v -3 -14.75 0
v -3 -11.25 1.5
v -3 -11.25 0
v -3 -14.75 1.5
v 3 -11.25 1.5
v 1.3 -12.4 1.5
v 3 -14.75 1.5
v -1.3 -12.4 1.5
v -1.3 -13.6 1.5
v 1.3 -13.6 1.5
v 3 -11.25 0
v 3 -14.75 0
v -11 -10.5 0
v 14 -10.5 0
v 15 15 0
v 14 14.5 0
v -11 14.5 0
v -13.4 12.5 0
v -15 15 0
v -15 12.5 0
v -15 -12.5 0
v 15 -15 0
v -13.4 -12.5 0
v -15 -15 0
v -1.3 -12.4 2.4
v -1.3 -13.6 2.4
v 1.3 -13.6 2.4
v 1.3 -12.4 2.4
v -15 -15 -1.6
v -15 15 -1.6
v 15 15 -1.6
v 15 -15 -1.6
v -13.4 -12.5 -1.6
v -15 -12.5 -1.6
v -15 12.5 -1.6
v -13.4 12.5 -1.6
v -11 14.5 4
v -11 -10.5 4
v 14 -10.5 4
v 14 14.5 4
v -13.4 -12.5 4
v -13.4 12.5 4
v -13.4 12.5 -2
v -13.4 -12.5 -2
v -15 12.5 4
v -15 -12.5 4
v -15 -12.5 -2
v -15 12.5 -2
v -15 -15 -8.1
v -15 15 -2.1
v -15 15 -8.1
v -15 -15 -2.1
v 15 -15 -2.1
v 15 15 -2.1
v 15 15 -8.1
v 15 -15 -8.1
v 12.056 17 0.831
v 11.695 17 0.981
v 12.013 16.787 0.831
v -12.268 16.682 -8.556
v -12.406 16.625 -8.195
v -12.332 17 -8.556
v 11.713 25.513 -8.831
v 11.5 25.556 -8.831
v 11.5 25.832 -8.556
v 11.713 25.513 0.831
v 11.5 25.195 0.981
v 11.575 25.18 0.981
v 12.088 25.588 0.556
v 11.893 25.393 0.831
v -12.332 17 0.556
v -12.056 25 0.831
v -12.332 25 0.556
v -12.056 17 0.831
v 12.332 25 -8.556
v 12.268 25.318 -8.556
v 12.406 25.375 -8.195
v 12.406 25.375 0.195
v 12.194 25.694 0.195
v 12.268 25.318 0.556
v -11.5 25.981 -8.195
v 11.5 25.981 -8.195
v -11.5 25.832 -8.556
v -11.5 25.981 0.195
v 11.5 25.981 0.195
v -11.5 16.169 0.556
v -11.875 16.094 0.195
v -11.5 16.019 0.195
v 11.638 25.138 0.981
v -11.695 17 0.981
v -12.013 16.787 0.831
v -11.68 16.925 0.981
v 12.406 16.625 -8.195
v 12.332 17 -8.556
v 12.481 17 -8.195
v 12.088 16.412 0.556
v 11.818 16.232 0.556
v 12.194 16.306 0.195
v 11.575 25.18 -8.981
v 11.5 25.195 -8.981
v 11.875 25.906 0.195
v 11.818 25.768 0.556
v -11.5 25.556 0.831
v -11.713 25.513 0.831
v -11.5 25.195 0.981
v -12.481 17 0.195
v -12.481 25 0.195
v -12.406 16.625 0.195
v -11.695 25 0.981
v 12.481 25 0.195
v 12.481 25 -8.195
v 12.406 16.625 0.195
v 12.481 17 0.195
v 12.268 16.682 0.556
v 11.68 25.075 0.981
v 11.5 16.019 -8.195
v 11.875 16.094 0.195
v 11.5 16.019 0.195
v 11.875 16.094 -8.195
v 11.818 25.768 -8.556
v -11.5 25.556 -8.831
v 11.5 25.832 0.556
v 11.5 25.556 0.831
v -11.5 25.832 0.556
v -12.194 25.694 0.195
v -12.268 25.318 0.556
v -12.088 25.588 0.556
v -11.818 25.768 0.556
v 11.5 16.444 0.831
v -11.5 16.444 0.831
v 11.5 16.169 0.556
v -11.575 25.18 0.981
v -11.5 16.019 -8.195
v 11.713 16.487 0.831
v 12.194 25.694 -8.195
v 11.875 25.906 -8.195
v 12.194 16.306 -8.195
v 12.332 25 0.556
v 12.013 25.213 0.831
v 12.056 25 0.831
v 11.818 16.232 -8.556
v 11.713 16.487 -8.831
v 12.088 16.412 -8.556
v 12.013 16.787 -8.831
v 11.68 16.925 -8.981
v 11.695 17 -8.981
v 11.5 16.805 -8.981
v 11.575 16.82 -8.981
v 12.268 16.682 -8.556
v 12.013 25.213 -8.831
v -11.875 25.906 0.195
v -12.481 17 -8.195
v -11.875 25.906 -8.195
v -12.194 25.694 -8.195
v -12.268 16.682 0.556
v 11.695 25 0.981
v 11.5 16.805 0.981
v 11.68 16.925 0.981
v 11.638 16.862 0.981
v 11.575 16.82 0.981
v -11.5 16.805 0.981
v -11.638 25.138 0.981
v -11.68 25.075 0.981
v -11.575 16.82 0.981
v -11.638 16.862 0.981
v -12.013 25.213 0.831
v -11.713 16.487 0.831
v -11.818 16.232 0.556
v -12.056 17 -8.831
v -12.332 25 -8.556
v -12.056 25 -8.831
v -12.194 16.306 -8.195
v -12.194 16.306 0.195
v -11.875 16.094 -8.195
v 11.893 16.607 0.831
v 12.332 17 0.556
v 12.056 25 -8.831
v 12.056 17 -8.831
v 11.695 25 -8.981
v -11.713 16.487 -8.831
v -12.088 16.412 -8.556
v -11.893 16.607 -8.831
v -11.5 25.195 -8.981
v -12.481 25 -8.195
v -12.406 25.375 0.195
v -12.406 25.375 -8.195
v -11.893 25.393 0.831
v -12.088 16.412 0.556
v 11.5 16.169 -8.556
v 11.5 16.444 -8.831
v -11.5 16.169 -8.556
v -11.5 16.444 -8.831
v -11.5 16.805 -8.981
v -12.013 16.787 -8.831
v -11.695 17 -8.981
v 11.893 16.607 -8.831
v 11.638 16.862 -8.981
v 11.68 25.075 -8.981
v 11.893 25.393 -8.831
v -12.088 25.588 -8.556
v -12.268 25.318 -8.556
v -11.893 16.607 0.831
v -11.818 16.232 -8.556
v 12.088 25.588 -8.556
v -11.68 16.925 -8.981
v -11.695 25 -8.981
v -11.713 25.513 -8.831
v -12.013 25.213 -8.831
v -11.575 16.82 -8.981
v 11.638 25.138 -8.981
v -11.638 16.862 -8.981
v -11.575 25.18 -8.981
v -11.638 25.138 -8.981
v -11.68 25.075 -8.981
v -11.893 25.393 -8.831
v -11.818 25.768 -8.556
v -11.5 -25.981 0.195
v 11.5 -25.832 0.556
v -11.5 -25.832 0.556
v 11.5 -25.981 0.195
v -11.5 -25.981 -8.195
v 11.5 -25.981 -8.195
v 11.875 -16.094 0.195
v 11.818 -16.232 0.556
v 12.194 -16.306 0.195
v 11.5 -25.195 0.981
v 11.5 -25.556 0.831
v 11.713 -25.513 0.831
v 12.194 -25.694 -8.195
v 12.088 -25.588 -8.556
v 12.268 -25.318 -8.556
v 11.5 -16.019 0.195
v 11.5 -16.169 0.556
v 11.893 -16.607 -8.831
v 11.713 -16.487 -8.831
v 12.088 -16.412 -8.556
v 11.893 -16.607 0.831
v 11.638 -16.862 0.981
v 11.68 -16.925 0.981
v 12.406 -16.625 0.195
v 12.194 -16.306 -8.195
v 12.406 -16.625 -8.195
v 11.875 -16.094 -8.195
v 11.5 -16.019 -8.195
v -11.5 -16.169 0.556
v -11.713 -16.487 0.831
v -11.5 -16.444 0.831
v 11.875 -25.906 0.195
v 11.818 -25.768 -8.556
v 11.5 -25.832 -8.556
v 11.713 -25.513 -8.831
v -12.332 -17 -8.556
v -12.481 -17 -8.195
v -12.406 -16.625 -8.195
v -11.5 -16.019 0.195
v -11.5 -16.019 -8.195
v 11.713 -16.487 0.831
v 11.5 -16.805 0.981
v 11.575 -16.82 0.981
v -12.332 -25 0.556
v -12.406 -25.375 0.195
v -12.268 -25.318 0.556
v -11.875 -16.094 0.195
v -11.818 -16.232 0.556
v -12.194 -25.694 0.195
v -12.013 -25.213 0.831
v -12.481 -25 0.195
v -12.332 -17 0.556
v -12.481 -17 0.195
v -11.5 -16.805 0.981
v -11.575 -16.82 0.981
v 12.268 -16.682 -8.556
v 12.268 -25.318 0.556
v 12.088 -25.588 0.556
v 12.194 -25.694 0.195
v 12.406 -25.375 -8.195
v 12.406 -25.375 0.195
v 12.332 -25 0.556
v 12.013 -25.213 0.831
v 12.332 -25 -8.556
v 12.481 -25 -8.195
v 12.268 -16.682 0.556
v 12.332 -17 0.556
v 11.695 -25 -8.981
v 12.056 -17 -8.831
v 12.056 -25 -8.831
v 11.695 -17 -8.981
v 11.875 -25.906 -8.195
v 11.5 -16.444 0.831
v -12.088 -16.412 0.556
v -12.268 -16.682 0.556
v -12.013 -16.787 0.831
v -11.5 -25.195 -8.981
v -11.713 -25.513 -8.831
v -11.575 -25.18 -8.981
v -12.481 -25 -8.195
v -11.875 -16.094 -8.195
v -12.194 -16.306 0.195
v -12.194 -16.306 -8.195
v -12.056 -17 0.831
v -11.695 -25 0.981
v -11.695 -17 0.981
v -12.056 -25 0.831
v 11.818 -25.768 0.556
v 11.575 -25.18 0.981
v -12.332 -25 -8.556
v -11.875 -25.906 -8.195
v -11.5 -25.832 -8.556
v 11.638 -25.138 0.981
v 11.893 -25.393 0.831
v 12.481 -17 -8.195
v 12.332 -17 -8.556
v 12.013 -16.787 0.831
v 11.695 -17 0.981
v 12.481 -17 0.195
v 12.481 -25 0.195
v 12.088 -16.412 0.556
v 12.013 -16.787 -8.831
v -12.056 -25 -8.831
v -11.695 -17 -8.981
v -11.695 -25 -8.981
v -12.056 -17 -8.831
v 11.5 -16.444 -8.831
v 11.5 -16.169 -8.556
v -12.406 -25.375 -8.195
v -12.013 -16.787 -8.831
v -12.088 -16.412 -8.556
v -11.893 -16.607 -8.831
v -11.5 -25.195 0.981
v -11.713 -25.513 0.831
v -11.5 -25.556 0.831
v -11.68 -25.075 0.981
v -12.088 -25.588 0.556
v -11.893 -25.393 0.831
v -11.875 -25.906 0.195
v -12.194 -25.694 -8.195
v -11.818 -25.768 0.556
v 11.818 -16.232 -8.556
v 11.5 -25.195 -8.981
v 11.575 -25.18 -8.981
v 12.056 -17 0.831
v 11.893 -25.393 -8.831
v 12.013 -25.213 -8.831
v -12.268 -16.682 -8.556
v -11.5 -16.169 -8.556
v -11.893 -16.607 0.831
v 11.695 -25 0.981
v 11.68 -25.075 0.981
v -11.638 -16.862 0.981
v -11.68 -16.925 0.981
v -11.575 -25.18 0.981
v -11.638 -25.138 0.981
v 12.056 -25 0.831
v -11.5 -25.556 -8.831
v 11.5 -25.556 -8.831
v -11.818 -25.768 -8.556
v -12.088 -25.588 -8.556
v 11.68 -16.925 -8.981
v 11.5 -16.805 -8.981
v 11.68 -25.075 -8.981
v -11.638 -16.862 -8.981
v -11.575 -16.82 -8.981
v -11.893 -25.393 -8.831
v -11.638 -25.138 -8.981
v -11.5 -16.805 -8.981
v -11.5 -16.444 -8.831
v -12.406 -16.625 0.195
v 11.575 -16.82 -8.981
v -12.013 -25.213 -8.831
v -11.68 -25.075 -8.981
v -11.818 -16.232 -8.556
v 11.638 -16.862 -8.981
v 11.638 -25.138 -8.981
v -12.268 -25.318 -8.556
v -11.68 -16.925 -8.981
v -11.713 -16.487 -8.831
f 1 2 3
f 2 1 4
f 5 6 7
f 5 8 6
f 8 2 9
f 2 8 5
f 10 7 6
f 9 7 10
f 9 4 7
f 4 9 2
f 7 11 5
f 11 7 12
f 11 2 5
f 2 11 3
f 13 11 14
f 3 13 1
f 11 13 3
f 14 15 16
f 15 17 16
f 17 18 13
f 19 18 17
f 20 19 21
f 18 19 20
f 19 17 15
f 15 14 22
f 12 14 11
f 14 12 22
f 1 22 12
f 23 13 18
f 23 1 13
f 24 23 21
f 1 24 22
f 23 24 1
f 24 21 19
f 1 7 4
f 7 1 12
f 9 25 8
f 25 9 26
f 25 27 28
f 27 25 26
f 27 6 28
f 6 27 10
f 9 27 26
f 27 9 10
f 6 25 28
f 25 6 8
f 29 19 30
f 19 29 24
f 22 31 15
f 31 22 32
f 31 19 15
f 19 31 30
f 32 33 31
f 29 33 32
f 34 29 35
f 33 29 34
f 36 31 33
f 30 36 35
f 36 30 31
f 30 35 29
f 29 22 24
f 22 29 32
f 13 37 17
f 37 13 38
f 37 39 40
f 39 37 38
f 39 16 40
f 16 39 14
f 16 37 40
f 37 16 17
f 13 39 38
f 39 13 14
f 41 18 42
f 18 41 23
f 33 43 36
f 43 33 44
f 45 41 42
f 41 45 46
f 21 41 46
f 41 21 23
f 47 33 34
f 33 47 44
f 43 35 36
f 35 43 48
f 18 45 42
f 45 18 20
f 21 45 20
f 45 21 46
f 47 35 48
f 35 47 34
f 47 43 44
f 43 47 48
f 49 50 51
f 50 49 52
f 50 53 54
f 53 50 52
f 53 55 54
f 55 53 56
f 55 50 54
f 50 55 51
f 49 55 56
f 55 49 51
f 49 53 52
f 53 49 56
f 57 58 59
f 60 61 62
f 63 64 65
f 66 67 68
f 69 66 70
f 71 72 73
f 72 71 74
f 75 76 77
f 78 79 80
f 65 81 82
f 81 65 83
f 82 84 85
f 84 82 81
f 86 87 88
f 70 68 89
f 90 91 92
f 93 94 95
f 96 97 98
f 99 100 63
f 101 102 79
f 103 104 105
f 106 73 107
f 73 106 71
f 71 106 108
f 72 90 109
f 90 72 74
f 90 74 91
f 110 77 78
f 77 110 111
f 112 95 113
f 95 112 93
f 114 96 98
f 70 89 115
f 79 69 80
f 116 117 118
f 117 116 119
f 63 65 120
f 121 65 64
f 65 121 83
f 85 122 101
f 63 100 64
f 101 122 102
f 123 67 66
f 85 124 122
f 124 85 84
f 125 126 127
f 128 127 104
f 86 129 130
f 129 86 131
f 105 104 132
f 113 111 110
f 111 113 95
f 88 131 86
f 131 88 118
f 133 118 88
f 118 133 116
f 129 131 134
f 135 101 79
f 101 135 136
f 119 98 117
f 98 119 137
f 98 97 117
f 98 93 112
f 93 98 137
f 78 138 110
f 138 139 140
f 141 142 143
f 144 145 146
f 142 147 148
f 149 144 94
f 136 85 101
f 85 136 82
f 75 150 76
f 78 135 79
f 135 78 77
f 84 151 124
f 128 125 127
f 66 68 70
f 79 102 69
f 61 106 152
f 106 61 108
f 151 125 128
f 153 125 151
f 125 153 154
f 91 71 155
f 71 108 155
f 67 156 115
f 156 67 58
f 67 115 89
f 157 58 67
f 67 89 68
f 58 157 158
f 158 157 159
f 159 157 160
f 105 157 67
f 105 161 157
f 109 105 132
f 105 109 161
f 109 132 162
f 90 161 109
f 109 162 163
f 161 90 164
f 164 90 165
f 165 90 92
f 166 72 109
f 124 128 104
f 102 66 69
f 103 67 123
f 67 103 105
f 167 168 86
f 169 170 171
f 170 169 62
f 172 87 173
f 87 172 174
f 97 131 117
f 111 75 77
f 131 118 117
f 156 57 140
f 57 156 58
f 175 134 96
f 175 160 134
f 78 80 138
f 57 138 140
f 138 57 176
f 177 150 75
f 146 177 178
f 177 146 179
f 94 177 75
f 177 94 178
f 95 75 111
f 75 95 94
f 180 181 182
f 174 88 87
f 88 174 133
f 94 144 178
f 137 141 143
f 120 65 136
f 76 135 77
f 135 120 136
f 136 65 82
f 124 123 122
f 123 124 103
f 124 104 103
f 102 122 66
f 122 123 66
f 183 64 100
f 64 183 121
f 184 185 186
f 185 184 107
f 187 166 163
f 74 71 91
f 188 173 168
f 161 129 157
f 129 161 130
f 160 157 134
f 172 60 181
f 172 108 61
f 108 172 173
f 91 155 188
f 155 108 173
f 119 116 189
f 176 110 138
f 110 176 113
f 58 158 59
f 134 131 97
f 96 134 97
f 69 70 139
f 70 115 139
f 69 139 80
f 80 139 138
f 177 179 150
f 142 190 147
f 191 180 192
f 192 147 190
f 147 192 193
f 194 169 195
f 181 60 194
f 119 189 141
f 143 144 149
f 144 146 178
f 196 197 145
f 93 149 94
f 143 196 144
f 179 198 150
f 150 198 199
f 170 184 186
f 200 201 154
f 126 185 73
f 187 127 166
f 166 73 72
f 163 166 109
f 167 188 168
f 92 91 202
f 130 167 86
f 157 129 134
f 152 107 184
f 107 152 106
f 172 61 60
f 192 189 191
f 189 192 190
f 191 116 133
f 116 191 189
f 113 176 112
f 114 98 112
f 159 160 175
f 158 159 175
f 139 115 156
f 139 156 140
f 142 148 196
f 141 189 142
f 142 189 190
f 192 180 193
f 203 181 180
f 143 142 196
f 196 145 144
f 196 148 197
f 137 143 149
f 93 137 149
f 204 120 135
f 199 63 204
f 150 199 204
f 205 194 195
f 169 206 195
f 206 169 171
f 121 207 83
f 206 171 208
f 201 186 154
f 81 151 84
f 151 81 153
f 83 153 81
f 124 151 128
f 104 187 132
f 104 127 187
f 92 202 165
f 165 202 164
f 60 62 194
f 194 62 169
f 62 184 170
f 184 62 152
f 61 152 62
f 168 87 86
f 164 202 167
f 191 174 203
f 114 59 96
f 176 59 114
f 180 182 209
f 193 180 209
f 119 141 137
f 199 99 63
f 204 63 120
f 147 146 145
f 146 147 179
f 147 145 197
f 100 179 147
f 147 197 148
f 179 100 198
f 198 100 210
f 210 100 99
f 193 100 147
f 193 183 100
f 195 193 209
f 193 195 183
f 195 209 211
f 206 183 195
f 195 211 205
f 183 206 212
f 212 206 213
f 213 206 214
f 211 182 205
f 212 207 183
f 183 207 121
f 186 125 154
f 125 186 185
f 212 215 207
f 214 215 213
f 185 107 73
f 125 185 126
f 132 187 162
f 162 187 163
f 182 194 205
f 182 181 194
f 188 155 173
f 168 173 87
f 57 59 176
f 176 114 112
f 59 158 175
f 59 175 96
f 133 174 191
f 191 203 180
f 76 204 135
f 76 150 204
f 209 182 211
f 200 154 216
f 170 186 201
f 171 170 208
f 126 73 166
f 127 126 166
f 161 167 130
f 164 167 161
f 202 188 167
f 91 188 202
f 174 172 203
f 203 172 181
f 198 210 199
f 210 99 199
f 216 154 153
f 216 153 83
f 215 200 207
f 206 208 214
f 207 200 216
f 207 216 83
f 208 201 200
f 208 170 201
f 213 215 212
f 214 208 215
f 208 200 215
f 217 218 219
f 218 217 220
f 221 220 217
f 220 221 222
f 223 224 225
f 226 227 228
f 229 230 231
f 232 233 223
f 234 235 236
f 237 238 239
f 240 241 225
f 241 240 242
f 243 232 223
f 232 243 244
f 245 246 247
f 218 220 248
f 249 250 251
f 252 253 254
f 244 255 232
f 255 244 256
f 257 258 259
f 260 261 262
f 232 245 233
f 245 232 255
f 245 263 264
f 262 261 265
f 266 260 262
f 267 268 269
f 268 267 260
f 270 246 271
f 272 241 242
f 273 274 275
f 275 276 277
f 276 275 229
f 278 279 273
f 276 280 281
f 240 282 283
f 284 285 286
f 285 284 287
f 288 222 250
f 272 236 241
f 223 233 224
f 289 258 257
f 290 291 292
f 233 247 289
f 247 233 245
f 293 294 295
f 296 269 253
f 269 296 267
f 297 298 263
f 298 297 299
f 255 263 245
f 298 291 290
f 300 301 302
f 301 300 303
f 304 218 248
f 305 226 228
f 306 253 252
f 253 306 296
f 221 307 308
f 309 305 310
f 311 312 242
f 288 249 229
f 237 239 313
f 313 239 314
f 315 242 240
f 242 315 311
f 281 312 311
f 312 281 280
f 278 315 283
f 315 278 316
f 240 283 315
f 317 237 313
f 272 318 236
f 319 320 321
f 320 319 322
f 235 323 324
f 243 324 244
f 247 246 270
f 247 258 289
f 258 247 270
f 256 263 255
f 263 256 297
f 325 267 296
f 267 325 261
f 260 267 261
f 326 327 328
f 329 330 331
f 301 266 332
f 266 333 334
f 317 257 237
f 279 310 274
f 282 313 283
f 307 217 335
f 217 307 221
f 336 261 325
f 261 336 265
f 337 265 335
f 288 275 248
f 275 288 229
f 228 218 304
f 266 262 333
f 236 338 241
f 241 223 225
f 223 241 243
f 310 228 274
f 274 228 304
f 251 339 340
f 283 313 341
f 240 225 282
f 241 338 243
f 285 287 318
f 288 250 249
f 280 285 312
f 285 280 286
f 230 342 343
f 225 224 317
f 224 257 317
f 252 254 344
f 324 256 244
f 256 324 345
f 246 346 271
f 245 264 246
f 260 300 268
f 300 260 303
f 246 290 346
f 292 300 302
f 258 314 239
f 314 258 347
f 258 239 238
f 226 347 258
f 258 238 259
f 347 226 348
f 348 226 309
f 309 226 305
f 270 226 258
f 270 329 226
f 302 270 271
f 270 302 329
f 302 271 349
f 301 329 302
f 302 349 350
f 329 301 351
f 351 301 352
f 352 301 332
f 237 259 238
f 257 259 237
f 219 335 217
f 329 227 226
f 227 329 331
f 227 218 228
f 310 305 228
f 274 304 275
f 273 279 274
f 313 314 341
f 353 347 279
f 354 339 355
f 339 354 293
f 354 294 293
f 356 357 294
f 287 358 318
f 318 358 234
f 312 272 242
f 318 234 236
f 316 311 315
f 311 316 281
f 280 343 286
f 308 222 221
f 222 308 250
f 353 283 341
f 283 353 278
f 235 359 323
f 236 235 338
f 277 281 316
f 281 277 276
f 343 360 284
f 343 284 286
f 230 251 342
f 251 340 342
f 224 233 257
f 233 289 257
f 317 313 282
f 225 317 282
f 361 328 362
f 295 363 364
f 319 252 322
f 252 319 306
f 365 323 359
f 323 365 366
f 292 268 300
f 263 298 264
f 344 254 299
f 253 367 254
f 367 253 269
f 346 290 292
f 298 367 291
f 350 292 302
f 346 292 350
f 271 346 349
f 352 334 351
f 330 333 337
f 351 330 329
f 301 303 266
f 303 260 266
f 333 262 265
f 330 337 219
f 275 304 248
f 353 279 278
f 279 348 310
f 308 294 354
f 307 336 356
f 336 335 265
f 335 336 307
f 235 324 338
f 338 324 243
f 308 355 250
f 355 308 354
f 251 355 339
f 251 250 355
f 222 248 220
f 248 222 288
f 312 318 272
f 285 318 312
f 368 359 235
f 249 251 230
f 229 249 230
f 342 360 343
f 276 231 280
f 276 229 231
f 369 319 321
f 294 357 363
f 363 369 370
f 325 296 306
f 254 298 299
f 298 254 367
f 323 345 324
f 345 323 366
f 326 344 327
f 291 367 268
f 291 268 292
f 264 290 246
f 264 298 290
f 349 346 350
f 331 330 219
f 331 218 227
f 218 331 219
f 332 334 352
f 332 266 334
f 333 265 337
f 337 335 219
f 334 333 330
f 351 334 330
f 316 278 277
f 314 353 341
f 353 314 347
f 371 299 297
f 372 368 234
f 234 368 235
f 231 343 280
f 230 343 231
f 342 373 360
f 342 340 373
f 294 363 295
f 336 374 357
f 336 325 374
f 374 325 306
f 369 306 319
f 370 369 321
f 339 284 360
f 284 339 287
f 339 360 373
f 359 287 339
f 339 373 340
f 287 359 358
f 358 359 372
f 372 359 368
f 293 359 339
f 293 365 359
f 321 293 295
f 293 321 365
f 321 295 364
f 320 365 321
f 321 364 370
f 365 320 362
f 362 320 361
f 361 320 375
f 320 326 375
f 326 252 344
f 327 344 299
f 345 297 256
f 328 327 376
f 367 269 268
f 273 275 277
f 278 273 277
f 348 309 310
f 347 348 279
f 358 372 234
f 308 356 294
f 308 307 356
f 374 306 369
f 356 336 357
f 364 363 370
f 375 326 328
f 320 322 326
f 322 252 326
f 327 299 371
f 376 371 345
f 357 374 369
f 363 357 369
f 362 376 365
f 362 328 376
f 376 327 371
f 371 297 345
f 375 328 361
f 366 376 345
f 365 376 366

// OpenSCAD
$fn=16;

module mb() {
  // Плата 30x30x1.6
  color("Green") translate([0,0,-1.6/2]) cube([30, 30, 1.6], center=true);

  // Антенна 25x25x4 (чуть смещена)
  color([0.9,0.9,0.9]) {
    translate([1.5, 2, 4/2]) {
      cube([25, 25, 4], center=true);
    }
  }

  // Плата GSM-антенны
  color("Green") {
    translate([-30/2+1.6/2, 0, 1]) {
      rotate([0, 90, 0]) {
        cube([6, 25, 1.6], center=true);
      }
    }
  }

  // Кнопка
  translate([0, -13.0, 0]) {
    color("Silver") translate([0, 0, 1.5/2]) cube([6, 3.5, 1.5], center=true);
    color("White")  translate([0, 0, 2.4/2]) cube([2.6, 1.2, 2.4], center=true);
  }

  // Аккумулятор 30х30х6 (550мАч)
  color("Silver") translate([0,0,-6/2-1.6-0.5]) cube([30, 30, 6], center=true);
}

module r_cube(x, y, z, r) {
  hull() {
    translate([ x/2-r, y/2-r, z/2-r]) sphere(r=1);
    translate([-x/2+r, y/2-r, z/2-r]) sphere(r=1);
    translate([ x/2-r,-y/2+r, z/2-r]) sphere(r=1);
    translate([-x/2+r,-y/2+r, z/2-r]) sphere(r=1);
    translate([ x/2-r, y/2-r,-z/2+r]) sphere(r=1);
    translate([-x/2+r, y/2-r,-z/2+r]) sphere(r=1);
    translate([ x/2-r,-y/2+r,-z/2+r]) sphere(r=1);
    translate([-x/2+r,-y/2+r,-z/2+r]) sphere(r=1);
  }
}

module magnetes() {
  // Магниты 25x10x10 (10кг)
  color("Silver") translate([0, 30/2 + 10/2 + 1.0, -4]) r_cube(25, 10, 10, 1);
  color("Silver") translate([0,-30/2 - 10/2 - 1.0, -4]) r_cube(25, 10, 10, 1);
}


mb();
magnetes();
